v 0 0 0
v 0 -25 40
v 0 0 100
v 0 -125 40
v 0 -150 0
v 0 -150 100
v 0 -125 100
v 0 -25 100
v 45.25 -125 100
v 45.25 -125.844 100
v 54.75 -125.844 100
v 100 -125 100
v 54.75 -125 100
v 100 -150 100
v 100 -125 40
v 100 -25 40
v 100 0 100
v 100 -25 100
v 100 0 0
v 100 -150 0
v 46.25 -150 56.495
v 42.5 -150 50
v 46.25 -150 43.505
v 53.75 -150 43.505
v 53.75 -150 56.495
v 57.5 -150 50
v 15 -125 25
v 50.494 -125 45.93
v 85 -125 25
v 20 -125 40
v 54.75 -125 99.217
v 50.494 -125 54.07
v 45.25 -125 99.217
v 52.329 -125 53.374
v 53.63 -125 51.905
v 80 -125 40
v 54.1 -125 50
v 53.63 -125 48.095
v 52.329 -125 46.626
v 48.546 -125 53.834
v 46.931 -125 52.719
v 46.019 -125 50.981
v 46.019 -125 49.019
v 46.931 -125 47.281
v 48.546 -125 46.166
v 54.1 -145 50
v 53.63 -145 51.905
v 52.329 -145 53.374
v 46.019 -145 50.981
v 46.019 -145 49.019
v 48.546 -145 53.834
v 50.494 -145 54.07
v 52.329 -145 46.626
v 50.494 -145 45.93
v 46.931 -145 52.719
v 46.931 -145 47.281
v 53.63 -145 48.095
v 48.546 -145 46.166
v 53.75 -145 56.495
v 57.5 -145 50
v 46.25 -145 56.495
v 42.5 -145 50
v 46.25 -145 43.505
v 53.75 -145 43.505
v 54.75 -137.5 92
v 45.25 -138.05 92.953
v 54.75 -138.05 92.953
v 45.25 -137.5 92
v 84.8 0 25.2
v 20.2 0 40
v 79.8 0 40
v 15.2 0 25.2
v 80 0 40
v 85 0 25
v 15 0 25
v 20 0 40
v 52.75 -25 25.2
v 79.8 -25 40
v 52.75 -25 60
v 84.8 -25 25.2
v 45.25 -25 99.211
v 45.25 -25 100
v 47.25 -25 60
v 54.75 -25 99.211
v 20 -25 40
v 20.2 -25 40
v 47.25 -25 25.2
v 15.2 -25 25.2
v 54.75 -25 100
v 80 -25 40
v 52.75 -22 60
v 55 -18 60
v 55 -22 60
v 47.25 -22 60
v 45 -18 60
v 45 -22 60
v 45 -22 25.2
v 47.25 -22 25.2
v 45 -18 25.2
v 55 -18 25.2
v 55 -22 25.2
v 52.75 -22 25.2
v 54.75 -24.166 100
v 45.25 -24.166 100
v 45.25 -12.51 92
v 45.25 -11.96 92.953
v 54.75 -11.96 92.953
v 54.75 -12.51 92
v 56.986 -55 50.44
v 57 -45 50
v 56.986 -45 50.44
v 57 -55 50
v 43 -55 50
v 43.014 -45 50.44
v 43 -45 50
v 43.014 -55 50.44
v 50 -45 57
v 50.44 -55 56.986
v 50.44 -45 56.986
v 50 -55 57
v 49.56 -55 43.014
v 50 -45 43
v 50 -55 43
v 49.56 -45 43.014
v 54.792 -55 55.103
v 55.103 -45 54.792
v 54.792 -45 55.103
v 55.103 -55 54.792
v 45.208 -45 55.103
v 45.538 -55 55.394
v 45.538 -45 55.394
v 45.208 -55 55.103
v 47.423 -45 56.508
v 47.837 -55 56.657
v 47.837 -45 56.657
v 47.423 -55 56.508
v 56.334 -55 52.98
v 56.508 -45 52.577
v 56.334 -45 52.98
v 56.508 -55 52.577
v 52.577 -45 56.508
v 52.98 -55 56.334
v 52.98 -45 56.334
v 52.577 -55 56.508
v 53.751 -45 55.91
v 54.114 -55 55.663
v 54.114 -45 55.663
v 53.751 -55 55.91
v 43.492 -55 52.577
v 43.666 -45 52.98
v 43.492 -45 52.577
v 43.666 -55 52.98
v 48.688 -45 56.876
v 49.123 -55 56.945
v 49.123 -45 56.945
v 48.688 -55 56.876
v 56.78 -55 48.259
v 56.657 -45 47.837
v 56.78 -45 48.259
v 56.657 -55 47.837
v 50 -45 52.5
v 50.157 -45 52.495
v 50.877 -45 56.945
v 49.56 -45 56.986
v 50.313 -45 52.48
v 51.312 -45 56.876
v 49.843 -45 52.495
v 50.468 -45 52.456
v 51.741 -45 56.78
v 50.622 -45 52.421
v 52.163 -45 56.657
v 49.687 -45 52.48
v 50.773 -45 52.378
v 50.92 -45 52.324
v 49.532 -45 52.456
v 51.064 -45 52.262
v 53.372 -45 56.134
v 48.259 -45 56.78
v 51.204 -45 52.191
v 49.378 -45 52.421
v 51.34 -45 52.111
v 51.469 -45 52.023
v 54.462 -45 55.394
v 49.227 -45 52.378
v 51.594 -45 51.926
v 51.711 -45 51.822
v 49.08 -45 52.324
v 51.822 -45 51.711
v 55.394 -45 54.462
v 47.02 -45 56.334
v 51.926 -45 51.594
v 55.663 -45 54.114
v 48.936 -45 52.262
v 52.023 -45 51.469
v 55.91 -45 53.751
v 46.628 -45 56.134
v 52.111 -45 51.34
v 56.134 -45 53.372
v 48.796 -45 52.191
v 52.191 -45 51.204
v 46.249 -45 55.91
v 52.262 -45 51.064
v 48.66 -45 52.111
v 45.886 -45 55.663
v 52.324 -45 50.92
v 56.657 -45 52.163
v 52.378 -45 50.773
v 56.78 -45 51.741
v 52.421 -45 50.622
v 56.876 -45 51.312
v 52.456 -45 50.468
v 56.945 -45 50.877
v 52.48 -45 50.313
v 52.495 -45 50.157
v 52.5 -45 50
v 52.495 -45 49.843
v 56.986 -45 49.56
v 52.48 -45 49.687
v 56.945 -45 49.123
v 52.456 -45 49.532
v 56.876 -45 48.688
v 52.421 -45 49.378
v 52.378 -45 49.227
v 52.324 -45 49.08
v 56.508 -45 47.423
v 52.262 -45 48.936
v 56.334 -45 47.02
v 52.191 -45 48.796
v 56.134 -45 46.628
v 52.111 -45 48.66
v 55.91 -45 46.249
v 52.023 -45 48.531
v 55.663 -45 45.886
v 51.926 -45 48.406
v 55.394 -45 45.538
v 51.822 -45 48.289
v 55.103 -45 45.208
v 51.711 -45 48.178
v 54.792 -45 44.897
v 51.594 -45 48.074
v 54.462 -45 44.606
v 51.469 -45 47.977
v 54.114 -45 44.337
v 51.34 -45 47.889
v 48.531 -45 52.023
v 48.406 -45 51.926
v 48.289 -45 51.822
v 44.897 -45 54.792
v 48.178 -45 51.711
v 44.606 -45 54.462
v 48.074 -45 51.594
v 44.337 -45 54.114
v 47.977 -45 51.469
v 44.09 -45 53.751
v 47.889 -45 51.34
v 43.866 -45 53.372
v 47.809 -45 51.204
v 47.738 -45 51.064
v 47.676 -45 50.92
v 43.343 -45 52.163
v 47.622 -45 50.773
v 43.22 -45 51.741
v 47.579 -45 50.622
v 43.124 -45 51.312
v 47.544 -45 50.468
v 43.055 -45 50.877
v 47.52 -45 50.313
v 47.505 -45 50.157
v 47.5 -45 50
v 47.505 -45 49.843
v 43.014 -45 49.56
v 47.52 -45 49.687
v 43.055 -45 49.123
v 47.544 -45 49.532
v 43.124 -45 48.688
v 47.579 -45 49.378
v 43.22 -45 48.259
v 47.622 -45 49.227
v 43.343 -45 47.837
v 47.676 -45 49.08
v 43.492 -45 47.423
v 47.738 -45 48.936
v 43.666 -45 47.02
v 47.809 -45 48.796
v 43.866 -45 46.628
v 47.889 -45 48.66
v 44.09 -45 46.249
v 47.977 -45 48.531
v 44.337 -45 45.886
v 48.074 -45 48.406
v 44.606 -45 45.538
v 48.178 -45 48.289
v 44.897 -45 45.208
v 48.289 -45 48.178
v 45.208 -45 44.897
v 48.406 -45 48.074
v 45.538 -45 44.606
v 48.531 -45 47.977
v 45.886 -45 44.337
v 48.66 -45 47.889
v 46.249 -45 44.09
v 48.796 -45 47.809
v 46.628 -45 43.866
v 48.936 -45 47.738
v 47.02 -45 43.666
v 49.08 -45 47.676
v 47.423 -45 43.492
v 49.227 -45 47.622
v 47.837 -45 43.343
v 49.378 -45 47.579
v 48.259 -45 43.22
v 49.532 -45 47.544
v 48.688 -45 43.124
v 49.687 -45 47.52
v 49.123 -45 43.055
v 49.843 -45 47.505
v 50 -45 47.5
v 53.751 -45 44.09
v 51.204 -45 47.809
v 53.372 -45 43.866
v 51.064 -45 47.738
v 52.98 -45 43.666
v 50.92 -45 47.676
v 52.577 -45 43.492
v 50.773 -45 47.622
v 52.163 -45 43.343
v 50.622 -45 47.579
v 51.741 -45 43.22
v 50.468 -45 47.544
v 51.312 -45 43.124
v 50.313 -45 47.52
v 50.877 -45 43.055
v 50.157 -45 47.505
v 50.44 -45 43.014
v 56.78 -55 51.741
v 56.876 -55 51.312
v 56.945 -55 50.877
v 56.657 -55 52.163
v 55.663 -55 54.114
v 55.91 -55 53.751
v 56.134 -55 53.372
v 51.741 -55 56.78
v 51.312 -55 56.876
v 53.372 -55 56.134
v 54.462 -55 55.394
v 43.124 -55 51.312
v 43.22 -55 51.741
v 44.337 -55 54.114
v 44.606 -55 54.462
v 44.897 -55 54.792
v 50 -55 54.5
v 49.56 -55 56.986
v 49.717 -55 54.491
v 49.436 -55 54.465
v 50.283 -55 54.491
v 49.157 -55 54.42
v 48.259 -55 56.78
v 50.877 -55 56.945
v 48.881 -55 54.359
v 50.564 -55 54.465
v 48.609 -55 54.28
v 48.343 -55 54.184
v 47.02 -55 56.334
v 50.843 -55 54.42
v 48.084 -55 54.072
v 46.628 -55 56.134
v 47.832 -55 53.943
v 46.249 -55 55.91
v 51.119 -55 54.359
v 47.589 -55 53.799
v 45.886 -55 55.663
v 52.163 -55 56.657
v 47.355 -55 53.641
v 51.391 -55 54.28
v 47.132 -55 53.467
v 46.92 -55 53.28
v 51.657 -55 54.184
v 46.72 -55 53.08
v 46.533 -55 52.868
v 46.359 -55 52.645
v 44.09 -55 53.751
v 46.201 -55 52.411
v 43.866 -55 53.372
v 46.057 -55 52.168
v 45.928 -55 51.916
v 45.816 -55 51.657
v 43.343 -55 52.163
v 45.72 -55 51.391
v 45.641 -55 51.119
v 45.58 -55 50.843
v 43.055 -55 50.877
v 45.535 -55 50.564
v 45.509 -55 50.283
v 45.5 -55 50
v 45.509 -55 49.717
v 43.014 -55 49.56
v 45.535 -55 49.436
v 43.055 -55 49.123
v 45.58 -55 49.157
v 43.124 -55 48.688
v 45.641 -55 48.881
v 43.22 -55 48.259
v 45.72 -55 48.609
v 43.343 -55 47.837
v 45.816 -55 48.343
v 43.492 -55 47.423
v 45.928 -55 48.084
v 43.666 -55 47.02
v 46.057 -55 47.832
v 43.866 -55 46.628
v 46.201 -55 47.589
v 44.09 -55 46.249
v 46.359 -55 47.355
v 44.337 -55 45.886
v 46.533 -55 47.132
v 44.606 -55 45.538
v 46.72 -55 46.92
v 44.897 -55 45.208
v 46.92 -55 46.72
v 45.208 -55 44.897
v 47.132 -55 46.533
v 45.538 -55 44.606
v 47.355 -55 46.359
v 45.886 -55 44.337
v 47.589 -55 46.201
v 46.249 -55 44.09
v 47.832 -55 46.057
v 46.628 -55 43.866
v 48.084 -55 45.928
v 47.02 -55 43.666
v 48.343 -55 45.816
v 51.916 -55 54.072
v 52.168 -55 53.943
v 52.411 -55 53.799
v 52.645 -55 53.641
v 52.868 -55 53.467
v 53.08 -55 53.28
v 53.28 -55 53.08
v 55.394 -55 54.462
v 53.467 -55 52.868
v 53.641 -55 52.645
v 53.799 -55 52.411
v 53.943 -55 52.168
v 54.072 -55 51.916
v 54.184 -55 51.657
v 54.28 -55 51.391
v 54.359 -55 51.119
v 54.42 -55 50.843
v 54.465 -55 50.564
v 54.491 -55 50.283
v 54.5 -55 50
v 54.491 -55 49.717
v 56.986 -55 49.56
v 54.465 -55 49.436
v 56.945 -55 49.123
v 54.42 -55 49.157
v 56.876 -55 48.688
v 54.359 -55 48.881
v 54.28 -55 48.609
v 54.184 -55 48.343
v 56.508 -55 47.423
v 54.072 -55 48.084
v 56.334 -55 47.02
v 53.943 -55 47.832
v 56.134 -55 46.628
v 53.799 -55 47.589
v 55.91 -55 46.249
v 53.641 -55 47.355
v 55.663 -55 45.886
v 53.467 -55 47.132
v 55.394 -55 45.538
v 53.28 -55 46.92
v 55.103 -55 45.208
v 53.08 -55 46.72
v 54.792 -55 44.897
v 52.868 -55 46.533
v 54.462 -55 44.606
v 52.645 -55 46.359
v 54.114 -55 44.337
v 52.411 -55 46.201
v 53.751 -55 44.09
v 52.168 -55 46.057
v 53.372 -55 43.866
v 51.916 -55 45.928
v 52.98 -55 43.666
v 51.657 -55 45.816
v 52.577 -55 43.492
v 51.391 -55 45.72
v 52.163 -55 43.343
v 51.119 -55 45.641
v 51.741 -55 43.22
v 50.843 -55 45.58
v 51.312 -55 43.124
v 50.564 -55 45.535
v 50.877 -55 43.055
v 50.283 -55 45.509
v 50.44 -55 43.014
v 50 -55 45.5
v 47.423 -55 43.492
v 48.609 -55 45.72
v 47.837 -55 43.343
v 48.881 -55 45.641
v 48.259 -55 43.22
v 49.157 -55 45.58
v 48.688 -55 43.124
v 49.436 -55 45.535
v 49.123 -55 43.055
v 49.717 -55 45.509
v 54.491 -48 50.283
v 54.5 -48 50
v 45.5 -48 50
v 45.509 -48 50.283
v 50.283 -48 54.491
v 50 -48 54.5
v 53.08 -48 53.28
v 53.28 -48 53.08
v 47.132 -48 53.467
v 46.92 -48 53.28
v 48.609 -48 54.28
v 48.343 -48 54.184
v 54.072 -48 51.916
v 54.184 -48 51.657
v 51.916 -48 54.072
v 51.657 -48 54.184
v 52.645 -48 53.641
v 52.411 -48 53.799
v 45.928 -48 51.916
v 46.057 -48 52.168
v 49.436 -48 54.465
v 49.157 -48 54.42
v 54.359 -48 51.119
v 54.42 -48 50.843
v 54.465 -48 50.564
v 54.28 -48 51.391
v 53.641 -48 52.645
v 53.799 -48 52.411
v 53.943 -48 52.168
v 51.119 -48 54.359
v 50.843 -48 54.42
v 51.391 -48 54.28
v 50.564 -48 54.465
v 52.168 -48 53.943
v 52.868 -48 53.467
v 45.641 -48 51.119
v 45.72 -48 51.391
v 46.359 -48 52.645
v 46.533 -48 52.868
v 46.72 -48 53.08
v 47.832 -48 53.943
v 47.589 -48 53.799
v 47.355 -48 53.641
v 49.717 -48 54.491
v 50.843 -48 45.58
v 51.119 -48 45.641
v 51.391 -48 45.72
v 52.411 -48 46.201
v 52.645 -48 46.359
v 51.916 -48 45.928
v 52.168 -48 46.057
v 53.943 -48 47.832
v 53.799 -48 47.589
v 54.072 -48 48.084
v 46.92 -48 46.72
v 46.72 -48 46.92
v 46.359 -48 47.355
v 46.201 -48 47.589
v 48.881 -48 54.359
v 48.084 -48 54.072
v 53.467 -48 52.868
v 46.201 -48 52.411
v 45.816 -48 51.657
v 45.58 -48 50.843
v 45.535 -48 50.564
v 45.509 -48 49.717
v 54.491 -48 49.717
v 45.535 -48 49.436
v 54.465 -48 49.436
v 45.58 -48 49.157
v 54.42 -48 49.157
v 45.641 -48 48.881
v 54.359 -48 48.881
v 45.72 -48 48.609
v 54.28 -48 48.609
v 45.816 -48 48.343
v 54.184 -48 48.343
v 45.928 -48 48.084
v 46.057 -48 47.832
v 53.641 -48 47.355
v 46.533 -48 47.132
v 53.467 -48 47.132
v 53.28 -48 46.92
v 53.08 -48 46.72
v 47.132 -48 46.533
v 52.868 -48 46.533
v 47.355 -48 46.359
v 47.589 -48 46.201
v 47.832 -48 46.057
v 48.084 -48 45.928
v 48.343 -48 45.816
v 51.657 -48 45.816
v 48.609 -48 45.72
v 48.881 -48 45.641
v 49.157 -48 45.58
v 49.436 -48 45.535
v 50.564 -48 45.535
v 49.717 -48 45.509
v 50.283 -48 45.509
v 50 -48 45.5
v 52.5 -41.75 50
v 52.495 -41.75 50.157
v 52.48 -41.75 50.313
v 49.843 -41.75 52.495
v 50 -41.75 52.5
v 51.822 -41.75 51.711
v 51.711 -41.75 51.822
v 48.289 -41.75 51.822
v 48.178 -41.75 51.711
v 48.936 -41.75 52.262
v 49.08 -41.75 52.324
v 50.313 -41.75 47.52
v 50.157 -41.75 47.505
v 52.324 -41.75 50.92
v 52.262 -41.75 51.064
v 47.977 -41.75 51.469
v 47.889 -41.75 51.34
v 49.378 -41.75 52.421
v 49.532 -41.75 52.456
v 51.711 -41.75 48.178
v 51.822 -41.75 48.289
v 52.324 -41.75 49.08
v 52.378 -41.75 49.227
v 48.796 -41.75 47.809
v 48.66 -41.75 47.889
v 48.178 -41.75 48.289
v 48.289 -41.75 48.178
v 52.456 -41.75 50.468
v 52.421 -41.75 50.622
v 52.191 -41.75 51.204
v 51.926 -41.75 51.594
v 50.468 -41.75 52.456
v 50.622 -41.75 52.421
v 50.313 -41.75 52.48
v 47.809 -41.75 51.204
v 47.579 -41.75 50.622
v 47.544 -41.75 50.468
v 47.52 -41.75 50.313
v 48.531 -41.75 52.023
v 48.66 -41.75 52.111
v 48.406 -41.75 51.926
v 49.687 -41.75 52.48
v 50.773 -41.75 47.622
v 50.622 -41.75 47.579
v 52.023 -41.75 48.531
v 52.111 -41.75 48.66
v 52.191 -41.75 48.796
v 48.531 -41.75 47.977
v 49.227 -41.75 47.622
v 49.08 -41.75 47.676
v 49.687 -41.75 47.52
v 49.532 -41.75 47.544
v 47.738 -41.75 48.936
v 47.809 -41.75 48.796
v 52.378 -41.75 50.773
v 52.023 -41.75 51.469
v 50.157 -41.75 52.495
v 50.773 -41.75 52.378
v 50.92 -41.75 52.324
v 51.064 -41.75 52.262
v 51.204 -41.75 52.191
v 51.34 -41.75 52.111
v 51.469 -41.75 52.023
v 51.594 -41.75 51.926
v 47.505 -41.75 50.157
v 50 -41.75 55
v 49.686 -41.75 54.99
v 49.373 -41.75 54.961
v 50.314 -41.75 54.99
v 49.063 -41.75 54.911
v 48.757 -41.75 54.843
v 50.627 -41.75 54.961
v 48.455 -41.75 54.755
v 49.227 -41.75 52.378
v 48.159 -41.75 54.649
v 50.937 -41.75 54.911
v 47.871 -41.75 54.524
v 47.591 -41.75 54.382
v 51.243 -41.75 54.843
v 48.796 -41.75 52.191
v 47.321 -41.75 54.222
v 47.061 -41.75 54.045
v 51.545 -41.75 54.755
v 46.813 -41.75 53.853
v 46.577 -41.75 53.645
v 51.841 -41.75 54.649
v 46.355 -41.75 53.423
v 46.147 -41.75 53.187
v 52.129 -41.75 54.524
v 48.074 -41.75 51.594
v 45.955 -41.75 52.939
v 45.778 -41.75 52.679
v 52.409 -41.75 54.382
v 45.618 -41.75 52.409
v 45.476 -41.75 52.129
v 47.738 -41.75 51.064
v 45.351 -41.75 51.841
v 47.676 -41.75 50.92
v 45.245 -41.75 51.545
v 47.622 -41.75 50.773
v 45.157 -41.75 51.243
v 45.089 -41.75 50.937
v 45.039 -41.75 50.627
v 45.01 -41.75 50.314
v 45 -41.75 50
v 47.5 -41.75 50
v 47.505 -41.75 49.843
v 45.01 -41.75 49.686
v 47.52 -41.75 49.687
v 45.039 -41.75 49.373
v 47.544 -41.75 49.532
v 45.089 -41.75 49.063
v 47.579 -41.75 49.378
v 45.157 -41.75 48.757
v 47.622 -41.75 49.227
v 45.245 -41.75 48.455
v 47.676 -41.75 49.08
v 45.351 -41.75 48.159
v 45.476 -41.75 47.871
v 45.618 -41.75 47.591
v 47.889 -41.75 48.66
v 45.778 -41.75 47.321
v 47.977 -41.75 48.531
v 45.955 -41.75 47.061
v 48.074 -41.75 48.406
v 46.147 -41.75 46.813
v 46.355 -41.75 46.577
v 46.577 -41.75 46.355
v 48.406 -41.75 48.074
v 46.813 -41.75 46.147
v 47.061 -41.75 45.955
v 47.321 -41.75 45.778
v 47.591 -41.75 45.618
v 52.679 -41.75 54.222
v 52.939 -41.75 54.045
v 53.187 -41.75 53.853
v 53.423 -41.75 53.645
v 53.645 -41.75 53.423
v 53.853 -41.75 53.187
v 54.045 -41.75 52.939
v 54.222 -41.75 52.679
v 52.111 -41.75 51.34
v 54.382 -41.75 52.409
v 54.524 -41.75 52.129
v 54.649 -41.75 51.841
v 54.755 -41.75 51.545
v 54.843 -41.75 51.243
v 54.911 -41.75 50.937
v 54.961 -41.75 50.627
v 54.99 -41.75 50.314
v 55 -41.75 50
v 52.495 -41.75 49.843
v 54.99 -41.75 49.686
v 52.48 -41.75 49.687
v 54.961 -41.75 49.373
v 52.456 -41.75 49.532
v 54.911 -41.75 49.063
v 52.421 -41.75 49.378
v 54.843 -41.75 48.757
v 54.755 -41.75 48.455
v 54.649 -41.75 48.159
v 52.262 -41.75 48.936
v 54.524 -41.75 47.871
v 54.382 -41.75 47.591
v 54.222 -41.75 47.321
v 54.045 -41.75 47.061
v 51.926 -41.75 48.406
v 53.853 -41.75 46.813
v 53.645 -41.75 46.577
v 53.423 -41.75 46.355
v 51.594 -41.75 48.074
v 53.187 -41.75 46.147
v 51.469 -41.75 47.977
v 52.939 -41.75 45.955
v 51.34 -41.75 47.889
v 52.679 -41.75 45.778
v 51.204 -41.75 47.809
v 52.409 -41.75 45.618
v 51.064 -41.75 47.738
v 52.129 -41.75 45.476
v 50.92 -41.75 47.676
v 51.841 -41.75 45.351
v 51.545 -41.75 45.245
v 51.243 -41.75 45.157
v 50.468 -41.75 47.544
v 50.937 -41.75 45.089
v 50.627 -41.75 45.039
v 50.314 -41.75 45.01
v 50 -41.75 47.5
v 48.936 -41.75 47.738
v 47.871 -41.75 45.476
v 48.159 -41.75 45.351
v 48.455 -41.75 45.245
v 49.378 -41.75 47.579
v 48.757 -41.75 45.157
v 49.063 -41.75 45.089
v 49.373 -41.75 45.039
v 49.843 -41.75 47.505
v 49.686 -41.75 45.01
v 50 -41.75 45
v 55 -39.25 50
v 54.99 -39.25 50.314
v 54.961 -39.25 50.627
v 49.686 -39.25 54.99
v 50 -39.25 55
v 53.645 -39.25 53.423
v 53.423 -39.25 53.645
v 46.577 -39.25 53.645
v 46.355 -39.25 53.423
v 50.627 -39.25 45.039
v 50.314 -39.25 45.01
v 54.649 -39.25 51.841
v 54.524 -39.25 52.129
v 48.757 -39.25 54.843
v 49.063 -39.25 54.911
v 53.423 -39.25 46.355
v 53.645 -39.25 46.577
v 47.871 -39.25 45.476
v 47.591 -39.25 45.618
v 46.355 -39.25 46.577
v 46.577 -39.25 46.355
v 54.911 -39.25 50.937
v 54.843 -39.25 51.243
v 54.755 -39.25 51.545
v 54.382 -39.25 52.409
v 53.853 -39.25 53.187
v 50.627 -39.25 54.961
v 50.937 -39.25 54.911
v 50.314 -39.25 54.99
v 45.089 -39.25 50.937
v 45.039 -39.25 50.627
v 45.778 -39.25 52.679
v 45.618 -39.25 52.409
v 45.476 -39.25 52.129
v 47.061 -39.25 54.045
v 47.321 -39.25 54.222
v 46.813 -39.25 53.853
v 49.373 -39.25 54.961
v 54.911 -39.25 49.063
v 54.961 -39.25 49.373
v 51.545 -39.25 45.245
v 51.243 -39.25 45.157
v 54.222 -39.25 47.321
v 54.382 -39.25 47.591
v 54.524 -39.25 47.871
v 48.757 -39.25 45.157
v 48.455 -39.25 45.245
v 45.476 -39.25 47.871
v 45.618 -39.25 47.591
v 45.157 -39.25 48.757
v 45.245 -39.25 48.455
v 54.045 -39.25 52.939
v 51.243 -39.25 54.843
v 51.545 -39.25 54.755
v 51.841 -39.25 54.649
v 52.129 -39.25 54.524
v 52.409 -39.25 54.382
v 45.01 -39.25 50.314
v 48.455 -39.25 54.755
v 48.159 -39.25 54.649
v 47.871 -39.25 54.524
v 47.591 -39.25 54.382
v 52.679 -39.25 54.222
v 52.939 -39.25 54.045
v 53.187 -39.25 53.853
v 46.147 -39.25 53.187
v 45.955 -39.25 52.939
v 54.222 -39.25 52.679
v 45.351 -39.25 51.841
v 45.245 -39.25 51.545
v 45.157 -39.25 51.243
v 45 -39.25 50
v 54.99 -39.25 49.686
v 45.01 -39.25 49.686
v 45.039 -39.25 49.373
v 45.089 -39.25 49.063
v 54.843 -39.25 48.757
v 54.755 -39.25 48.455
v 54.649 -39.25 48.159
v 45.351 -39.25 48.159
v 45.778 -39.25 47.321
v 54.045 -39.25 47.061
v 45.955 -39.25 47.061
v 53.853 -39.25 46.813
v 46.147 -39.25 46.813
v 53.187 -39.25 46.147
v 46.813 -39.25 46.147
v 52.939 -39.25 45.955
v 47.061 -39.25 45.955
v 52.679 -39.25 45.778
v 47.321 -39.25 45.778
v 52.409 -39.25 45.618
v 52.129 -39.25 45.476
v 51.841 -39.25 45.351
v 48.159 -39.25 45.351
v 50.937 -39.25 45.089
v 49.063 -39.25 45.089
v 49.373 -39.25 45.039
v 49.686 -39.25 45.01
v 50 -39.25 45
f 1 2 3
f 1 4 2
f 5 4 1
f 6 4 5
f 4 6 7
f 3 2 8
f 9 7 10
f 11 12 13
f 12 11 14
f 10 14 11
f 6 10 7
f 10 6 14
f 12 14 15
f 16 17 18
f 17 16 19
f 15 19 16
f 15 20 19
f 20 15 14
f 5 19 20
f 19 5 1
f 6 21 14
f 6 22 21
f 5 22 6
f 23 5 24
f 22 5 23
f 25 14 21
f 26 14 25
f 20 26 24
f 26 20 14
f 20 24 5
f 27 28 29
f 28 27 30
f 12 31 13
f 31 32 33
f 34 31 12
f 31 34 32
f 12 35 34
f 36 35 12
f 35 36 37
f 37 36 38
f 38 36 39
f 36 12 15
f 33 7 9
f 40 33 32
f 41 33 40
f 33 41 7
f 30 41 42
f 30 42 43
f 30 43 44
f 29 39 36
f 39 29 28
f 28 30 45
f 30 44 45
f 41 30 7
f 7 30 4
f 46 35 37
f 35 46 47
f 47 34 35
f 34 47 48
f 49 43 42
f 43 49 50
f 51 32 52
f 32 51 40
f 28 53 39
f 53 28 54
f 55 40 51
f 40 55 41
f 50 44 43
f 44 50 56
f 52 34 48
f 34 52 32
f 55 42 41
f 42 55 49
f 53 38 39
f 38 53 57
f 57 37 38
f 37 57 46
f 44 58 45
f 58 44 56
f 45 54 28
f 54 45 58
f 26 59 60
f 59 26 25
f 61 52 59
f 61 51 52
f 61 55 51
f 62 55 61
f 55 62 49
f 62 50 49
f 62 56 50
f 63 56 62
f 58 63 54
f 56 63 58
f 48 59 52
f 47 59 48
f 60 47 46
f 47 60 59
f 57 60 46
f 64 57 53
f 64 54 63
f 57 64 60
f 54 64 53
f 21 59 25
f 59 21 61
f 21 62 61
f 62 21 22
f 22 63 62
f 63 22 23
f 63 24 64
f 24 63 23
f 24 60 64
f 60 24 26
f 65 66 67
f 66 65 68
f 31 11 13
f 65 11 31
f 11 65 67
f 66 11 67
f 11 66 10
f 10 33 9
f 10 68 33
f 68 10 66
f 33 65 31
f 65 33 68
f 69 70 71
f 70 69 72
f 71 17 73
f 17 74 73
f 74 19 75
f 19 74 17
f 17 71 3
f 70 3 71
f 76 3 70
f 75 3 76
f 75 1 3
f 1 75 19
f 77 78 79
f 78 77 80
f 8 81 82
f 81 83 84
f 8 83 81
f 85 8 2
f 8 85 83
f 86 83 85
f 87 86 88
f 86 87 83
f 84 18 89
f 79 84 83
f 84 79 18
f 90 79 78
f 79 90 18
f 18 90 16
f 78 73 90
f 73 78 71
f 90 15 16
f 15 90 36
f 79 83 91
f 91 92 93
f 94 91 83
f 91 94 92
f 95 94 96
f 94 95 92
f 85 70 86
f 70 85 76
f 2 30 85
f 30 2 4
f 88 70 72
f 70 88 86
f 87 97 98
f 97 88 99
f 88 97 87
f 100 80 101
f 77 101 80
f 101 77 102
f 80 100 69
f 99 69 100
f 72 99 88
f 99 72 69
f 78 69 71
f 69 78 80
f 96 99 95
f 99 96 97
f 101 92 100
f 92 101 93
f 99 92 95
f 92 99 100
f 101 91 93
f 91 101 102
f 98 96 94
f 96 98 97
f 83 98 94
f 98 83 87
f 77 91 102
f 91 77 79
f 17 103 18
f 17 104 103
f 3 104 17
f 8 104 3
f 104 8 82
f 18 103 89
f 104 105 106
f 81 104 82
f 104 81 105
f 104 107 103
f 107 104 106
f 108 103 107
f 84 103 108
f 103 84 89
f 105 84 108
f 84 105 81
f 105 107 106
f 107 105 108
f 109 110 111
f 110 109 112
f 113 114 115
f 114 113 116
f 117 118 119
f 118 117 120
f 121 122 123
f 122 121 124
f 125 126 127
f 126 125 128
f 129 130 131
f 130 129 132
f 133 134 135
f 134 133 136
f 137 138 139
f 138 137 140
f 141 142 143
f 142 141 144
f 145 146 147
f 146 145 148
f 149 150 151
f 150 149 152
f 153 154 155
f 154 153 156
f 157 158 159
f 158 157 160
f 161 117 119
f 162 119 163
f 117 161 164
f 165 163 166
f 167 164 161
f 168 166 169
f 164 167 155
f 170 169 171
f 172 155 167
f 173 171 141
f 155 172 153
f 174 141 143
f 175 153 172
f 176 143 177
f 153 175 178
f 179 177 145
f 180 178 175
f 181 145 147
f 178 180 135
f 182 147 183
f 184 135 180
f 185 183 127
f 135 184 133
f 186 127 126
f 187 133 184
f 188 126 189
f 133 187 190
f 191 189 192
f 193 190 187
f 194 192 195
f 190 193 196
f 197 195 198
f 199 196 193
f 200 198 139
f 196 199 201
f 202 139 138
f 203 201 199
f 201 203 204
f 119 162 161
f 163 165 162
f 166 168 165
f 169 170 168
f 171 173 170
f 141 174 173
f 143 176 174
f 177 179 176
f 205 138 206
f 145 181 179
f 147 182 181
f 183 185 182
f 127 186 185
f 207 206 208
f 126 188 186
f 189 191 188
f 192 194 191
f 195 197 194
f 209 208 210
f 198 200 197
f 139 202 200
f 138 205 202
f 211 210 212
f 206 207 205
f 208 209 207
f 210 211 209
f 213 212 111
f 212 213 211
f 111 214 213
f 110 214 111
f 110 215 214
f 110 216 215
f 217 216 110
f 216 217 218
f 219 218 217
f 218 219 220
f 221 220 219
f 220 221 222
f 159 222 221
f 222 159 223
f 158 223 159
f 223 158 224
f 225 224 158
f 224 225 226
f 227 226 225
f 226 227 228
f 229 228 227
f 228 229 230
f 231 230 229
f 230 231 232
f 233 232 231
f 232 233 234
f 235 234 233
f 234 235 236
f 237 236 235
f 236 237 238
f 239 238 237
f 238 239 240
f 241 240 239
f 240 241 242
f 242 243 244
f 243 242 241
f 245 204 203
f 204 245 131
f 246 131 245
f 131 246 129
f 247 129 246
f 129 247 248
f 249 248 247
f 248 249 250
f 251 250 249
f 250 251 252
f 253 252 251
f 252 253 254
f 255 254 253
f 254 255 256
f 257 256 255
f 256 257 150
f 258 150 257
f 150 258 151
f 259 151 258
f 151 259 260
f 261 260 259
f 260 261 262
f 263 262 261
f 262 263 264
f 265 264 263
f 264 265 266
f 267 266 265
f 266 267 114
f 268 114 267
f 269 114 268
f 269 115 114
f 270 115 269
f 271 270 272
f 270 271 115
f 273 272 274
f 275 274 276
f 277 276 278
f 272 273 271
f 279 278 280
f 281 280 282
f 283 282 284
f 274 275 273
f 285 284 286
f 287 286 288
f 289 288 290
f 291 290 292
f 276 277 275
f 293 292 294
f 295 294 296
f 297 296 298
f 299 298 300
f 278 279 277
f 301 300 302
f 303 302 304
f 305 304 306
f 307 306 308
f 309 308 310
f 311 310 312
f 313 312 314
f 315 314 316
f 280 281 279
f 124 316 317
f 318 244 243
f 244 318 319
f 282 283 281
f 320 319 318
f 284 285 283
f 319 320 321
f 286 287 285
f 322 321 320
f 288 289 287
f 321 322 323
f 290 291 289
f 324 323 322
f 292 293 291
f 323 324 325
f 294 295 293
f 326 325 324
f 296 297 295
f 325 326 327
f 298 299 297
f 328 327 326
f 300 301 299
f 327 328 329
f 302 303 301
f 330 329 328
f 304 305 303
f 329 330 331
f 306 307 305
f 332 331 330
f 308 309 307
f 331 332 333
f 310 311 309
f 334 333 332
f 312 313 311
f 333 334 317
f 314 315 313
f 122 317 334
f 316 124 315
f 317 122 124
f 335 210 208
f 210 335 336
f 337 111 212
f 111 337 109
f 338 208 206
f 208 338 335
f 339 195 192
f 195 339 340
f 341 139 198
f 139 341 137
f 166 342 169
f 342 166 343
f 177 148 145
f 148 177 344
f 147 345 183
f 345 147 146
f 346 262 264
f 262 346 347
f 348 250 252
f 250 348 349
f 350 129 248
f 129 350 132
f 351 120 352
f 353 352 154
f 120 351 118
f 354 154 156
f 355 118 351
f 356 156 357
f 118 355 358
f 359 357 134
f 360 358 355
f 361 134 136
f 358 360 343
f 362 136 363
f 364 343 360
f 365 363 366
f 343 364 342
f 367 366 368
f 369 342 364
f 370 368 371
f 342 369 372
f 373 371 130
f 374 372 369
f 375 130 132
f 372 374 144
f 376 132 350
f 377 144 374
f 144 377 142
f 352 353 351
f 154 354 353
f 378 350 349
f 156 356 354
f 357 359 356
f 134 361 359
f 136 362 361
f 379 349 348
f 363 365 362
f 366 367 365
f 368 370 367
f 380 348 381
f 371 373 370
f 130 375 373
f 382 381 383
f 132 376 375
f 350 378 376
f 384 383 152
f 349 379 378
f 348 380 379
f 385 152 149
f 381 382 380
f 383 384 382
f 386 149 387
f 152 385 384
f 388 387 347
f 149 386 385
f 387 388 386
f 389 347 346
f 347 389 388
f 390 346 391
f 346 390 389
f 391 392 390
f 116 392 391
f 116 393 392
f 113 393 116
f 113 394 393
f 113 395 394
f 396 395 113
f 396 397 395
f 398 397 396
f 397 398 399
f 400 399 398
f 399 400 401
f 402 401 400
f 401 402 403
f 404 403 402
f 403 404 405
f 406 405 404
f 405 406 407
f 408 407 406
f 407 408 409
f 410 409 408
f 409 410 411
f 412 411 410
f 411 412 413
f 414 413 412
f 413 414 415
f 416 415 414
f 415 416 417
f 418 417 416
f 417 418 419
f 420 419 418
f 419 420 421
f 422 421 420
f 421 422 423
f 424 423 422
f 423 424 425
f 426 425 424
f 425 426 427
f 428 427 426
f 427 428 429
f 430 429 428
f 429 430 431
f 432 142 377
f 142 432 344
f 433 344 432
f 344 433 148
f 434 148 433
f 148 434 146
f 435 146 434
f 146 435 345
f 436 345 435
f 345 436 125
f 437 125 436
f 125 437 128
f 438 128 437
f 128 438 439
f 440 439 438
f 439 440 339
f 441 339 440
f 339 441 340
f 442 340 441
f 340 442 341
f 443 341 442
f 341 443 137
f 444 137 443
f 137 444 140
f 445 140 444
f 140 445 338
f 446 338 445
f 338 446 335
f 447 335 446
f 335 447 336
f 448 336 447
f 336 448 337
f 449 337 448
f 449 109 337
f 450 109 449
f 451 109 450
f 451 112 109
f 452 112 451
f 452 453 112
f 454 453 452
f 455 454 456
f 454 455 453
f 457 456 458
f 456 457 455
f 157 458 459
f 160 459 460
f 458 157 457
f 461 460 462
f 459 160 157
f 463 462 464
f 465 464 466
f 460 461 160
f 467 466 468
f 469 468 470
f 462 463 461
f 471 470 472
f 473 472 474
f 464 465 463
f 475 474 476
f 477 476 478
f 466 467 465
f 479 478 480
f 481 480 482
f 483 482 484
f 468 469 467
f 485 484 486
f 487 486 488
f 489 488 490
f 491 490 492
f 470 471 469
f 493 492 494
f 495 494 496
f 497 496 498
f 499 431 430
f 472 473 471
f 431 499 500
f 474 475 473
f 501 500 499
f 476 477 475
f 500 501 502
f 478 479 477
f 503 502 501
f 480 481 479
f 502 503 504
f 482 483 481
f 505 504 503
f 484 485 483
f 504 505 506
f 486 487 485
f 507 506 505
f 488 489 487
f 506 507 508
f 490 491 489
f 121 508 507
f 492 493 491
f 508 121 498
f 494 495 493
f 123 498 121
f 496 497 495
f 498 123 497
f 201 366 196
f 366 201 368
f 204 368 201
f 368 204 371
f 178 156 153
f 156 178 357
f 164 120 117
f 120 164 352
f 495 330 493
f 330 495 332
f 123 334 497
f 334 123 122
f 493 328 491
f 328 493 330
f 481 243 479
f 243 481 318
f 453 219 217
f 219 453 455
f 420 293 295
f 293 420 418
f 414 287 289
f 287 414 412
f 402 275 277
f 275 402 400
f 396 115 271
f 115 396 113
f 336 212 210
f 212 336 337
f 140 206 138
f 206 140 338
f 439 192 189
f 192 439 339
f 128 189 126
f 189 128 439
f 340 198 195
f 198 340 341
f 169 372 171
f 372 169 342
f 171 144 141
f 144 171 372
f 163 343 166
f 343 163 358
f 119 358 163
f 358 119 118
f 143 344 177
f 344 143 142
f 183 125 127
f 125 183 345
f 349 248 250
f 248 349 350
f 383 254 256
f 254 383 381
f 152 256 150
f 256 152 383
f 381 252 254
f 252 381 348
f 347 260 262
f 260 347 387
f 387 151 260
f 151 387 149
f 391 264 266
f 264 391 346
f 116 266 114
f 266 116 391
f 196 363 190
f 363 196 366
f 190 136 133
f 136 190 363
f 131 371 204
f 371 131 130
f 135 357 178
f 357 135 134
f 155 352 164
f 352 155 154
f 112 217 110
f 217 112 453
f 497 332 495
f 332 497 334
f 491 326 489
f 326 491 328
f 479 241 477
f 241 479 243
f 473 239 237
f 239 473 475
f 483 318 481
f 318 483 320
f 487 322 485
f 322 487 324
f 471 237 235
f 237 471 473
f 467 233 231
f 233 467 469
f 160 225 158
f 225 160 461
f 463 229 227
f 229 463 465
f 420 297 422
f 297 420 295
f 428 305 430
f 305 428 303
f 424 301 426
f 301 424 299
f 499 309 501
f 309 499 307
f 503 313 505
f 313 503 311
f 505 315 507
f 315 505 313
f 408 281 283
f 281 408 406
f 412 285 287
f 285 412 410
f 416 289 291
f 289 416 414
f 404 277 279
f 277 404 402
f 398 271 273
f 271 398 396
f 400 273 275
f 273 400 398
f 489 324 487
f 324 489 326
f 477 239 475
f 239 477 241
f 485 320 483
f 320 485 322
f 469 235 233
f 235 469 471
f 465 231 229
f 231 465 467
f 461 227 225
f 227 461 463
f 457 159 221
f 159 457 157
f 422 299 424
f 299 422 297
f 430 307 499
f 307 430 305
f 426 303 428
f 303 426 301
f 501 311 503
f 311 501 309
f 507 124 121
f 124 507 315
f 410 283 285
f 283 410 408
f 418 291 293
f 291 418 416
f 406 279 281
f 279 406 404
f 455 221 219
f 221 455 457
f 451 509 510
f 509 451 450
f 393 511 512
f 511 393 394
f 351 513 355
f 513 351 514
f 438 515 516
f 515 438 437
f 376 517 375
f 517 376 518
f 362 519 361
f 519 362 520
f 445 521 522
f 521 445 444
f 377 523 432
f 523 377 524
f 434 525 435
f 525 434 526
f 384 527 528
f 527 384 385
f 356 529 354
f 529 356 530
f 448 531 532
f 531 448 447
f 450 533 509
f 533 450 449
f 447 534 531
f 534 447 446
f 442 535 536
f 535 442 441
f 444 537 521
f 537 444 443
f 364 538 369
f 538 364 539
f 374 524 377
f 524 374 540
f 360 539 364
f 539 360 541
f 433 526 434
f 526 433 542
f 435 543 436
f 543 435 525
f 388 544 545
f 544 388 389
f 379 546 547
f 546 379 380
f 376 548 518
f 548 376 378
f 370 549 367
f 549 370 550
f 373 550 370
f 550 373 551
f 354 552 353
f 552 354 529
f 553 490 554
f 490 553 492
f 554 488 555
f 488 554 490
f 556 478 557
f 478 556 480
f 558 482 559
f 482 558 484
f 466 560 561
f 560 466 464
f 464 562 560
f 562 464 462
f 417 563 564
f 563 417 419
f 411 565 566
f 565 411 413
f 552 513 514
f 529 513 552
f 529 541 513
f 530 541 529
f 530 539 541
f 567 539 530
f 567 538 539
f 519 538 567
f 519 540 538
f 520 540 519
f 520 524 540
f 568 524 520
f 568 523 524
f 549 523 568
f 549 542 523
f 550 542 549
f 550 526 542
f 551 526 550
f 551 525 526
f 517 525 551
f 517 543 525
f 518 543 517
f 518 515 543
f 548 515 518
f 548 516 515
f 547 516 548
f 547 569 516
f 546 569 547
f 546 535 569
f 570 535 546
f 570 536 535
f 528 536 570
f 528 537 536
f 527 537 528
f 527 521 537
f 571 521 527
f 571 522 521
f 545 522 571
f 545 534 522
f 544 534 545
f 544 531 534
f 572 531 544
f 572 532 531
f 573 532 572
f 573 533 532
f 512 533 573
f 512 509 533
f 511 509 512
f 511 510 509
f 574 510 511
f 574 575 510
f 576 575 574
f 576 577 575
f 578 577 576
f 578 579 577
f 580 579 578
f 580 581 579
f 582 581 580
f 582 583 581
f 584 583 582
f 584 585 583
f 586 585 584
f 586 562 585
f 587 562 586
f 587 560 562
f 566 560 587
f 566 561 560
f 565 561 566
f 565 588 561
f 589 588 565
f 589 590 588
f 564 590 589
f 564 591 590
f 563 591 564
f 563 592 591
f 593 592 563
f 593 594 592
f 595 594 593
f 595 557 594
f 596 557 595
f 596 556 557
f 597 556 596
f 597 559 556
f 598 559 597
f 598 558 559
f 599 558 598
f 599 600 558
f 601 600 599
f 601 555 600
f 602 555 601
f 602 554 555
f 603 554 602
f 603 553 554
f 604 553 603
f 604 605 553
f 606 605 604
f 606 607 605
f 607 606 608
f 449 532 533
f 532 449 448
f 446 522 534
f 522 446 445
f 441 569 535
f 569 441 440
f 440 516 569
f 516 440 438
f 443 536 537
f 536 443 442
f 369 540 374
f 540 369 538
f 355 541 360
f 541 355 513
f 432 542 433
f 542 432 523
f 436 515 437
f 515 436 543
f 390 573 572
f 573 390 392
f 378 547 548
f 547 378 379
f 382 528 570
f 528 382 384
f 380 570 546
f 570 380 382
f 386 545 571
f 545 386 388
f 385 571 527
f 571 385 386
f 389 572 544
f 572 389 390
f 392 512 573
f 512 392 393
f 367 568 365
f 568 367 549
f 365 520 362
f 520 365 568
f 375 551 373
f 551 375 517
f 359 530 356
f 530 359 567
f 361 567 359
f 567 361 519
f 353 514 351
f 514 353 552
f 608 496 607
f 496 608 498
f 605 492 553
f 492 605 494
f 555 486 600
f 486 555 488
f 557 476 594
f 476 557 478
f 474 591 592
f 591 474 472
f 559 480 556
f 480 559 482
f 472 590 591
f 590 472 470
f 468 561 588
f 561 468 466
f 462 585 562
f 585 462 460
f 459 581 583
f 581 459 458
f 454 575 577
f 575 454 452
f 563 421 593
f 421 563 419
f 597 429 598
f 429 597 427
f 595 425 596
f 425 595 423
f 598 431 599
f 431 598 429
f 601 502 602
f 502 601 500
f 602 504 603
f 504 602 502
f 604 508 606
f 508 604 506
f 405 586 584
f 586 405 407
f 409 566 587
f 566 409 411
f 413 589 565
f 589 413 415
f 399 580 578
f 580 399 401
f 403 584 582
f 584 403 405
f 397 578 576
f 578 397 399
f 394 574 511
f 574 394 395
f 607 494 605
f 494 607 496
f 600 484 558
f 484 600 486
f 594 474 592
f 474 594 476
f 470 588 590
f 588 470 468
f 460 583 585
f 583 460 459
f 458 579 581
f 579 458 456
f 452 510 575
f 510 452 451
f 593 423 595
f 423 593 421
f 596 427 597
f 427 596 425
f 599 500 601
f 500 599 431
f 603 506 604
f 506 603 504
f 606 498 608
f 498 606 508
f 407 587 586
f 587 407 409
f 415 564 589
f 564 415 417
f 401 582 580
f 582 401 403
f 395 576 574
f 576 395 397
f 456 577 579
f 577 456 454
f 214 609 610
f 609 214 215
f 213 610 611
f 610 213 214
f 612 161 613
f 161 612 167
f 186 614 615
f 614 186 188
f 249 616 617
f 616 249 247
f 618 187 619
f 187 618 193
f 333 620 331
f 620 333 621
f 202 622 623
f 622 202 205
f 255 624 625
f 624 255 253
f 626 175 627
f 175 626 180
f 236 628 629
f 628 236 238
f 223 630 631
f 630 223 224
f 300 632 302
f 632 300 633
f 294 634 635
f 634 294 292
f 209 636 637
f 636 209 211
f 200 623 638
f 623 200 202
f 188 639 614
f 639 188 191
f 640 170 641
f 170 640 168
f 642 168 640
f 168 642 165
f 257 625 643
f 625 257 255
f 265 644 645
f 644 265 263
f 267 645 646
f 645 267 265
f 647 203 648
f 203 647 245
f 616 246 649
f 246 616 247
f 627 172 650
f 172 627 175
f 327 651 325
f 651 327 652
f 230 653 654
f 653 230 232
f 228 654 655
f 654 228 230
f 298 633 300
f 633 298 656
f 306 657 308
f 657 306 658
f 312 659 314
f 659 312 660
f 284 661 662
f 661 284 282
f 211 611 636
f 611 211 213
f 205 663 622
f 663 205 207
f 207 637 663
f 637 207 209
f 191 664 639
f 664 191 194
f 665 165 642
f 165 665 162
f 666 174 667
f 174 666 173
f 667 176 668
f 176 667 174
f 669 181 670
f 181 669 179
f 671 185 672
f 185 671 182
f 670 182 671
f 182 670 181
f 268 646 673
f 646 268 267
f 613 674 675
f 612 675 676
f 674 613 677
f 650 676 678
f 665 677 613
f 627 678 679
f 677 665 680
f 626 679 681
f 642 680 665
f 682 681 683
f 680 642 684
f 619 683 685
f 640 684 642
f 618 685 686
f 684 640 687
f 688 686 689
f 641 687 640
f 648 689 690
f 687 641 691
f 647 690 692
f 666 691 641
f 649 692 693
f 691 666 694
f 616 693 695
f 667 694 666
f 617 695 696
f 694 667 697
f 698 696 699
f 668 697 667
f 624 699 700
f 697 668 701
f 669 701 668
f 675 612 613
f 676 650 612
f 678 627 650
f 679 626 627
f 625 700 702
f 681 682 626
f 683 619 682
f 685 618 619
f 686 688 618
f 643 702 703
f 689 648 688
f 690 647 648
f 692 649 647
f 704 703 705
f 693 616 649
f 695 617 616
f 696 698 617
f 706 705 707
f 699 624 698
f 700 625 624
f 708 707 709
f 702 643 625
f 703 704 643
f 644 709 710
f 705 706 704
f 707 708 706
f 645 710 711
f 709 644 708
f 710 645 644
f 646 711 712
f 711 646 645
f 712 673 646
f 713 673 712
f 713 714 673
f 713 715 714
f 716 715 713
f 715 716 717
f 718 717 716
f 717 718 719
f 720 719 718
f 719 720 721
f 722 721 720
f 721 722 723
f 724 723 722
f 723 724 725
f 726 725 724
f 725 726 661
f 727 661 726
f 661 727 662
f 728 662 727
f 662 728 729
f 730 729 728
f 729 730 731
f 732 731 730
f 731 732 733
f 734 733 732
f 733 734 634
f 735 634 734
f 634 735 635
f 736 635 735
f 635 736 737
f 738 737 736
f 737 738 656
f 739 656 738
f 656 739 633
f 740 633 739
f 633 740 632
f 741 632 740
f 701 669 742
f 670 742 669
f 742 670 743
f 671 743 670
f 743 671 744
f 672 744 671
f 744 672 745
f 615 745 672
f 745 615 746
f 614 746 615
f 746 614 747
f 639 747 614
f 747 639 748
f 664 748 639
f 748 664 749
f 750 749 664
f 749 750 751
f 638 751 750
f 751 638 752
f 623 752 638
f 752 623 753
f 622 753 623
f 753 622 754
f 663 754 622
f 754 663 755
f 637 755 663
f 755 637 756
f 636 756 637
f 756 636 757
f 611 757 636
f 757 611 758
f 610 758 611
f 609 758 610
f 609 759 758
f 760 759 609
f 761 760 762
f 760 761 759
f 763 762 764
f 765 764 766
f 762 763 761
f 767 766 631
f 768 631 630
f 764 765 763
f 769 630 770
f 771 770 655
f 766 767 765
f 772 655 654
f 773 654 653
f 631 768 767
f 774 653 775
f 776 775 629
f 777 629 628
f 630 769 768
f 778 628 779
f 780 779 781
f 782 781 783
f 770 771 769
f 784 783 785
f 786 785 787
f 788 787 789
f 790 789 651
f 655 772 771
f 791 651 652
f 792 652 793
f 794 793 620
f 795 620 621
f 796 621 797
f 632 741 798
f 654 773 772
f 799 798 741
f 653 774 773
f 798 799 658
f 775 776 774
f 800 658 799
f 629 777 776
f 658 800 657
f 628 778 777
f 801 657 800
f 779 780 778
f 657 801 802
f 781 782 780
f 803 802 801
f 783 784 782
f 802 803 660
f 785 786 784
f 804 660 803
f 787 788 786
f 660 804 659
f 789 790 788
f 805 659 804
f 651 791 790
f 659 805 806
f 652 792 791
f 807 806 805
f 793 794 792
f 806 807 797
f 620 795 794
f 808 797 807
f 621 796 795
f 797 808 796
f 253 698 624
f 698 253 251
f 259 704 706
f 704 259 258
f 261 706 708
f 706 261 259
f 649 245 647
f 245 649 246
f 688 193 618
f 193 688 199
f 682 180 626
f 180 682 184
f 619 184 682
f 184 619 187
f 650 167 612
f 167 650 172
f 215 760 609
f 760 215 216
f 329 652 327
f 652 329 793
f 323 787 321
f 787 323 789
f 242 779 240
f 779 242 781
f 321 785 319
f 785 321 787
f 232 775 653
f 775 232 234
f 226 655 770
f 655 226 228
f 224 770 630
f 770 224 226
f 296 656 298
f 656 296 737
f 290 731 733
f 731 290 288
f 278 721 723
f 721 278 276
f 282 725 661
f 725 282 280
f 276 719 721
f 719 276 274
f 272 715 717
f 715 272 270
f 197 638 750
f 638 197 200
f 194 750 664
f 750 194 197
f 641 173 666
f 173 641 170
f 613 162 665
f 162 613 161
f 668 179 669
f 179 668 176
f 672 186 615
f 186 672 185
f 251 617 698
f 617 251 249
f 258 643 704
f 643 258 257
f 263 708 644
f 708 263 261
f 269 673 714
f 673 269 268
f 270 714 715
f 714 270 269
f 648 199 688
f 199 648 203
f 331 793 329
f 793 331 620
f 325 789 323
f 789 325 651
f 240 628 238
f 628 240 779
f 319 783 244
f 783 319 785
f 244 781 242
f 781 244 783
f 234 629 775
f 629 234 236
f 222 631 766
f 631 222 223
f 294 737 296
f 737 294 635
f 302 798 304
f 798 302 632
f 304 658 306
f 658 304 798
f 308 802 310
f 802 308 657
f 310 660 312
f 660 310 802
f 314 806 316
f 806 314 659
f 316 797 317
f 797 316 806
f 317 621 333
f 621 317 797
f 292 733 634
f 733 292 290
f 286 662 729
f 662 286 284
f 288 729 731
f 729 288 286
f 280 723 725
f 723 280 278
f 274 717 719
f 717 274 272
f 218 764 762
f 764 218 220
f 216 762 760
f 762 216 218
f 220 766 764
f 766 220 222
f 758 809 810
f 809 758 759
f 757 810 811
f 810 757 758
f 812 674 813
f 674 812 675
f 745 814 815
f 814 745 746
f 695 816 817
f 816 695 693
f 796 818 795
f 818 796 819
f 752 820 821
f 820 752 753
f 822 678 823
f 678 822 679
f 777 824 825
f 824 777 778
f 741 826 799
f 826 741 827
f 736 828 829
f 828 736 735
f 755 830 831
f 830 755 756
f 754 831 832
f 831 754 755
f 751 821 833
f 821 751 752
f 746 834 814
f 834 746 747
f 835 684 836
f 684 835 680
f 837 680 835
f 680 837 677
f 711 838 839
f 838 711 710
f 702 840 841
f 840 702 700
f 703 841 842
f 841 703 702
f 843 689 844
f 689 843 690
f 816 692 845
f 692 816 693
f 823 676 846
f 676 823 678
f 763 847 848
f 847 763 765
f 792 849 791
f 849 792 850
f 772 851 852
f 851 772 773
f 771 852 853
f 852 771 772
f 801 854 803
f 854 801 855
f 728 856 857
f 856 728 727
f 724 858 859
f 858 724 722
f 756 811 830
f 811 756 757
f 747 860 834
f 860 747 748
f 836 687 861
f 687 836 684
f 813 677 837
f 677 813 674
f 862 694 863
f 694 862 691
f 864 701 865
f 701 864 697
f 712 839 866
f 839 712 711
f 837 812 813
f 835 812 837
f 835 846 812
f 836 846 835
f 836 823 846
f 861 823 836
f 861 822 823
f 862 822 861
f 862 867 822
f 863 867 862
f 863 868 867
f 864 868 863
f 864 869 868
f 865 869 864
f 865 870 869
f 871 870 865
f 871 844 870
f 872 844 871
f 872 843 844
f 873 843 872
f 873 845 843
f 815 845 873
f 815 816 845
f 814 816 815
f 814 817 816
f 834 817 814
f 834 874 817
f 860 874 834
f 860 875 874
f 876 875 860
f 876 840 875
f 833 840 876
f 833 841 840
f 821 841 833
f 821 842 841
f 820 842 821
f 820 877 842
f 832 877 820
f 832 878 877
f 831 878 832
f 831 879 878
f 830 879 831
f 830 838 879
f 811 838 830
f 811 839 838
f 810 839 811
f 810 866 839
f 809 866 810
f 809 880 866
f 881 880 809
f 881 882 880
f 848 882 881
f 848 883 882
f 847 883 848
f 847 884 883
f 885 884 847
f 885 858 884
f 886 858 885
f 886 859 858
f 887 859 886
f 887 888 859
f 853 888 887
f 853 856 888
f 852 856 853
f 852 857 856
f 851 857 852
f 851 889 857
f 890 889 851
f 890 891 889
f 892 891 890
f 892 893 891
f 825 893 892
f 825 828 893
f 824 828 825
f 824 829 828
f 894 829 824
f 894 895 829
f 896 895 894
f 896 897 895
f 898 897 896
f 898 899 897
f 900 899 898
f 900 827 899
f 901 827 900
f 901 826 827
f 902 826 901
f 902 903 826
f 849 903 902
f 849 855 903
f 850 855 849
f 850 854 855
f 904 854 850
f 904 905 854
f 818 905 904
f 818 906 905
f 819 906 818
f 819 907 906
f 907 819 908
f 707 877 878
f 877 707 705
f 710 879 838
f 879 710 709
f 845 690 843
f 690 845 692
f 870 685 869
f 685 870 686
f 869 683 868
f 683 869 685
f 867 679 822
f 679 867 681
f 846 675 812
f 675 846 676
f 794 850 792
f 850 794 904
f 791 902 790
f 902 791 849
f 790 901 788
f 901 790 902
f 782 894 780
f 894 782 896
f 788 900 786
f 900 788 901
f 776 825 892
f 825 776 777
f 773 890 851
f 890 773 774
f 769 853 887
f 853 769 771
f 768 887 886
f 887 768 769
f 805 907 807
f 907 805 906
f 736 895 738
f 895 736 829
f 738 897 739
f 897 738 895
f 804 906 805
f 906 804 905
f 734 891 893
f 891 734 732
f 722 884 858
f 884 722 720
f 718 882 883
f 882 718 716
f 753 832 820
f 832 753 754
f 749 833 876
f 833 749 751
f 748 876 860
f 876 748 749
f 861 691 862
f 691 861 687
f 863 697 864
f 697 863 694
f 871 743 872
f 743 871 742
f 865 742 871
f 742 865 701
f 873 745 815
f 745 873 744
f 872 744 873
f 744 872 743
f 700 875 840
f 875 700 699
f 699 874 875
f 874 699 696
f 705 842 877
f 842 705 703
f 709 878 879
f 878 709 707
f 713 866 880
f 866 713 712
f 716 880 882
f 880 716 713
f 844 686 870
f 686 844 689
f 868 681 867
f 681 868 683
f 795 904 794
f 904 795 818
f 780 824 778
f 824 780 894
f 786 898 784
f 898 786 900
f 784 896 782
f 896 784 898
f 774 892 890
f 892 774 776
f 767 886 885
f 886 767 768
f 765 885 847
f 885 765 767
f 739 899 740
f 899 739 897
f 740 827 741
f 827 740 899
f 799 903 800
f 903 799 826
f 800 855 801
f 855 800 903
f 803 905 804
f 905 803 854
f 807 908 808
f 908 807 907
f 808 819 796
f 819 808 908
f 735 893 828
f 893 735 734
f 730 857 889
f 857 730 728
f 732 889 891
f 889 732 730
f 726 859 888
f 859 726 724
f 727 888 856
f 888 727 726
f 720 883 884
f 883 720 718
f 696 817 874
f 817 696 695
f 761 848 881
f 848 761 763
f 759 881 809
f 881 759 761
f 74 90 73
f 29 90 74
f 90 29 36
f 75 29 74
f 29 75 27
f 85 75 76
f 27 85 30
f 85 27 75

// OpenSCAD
rotate([90,0,0]) linear_extrude(150) {polygon(points=[[0,0],[100,0],[100,40],[80,40],[85,25],[15,25],[20,40],[0,40]]);
  };

//folga
  ff=0.2;
difference (){ rotate([90,0,0])translate([0,0,0])  linear_extrude(25) {polygon(points=[[100,60],[100,40],[80-ff,40],[85-ff,25+ff],[15+ff,25+ff],[20+ff,40],[0,40],[0,60]]);
  }; 
  
#translate([50-5,-25+3,0]) cube([10,4,60]);
  #translate([50-5.5/2,-25,0]) cube([5.5,4,60]);
  };
  
  difference(){
    translate([0,-25,60]) 
      cube([100,25,40]);

#translate([50-9.5/2,-30+4.5,107.5-5.5-2.5]) rotate([-30,0,0])cube([9.5,15,1.1]);

  };
  
  translate([0,-150,0]) difference() {
      cube([100,25,100]);
   #translate([50,10,50])rotate([90,0,0]) cylinder(h=30,r=4.1, center=true); 
 #translate([50,-0,50])rotate([90,0,0]) cylinder(h=10,r=15/2,$fn=6, center=true); 
      
#translate([50-9.5/2,13-0.5,100-3.5-4.5]) rotate([30,0,0])  cube([9.5,15,1.1]);
      
  };
  
  translate([0,0,0]){
  translate([50,-50,50])rotate([90,0,0]) difference(){cylinder(h=10,r=7, center=true,$fn=100);
     #translate([0,0,3])cylinder(h=10,r=4.5, center=true,$fn=100);
  }; 
 translate([50,-44,50])rotate([90,0,0]) cylinder(h=4.5,r=2.5, center=true,$fn=100);
   translate([50,-40.5,50])rotate([90,0,0]) cylinder(h=2.5,r=5, center=true,$fn=100);
  };
  
  
  
  
